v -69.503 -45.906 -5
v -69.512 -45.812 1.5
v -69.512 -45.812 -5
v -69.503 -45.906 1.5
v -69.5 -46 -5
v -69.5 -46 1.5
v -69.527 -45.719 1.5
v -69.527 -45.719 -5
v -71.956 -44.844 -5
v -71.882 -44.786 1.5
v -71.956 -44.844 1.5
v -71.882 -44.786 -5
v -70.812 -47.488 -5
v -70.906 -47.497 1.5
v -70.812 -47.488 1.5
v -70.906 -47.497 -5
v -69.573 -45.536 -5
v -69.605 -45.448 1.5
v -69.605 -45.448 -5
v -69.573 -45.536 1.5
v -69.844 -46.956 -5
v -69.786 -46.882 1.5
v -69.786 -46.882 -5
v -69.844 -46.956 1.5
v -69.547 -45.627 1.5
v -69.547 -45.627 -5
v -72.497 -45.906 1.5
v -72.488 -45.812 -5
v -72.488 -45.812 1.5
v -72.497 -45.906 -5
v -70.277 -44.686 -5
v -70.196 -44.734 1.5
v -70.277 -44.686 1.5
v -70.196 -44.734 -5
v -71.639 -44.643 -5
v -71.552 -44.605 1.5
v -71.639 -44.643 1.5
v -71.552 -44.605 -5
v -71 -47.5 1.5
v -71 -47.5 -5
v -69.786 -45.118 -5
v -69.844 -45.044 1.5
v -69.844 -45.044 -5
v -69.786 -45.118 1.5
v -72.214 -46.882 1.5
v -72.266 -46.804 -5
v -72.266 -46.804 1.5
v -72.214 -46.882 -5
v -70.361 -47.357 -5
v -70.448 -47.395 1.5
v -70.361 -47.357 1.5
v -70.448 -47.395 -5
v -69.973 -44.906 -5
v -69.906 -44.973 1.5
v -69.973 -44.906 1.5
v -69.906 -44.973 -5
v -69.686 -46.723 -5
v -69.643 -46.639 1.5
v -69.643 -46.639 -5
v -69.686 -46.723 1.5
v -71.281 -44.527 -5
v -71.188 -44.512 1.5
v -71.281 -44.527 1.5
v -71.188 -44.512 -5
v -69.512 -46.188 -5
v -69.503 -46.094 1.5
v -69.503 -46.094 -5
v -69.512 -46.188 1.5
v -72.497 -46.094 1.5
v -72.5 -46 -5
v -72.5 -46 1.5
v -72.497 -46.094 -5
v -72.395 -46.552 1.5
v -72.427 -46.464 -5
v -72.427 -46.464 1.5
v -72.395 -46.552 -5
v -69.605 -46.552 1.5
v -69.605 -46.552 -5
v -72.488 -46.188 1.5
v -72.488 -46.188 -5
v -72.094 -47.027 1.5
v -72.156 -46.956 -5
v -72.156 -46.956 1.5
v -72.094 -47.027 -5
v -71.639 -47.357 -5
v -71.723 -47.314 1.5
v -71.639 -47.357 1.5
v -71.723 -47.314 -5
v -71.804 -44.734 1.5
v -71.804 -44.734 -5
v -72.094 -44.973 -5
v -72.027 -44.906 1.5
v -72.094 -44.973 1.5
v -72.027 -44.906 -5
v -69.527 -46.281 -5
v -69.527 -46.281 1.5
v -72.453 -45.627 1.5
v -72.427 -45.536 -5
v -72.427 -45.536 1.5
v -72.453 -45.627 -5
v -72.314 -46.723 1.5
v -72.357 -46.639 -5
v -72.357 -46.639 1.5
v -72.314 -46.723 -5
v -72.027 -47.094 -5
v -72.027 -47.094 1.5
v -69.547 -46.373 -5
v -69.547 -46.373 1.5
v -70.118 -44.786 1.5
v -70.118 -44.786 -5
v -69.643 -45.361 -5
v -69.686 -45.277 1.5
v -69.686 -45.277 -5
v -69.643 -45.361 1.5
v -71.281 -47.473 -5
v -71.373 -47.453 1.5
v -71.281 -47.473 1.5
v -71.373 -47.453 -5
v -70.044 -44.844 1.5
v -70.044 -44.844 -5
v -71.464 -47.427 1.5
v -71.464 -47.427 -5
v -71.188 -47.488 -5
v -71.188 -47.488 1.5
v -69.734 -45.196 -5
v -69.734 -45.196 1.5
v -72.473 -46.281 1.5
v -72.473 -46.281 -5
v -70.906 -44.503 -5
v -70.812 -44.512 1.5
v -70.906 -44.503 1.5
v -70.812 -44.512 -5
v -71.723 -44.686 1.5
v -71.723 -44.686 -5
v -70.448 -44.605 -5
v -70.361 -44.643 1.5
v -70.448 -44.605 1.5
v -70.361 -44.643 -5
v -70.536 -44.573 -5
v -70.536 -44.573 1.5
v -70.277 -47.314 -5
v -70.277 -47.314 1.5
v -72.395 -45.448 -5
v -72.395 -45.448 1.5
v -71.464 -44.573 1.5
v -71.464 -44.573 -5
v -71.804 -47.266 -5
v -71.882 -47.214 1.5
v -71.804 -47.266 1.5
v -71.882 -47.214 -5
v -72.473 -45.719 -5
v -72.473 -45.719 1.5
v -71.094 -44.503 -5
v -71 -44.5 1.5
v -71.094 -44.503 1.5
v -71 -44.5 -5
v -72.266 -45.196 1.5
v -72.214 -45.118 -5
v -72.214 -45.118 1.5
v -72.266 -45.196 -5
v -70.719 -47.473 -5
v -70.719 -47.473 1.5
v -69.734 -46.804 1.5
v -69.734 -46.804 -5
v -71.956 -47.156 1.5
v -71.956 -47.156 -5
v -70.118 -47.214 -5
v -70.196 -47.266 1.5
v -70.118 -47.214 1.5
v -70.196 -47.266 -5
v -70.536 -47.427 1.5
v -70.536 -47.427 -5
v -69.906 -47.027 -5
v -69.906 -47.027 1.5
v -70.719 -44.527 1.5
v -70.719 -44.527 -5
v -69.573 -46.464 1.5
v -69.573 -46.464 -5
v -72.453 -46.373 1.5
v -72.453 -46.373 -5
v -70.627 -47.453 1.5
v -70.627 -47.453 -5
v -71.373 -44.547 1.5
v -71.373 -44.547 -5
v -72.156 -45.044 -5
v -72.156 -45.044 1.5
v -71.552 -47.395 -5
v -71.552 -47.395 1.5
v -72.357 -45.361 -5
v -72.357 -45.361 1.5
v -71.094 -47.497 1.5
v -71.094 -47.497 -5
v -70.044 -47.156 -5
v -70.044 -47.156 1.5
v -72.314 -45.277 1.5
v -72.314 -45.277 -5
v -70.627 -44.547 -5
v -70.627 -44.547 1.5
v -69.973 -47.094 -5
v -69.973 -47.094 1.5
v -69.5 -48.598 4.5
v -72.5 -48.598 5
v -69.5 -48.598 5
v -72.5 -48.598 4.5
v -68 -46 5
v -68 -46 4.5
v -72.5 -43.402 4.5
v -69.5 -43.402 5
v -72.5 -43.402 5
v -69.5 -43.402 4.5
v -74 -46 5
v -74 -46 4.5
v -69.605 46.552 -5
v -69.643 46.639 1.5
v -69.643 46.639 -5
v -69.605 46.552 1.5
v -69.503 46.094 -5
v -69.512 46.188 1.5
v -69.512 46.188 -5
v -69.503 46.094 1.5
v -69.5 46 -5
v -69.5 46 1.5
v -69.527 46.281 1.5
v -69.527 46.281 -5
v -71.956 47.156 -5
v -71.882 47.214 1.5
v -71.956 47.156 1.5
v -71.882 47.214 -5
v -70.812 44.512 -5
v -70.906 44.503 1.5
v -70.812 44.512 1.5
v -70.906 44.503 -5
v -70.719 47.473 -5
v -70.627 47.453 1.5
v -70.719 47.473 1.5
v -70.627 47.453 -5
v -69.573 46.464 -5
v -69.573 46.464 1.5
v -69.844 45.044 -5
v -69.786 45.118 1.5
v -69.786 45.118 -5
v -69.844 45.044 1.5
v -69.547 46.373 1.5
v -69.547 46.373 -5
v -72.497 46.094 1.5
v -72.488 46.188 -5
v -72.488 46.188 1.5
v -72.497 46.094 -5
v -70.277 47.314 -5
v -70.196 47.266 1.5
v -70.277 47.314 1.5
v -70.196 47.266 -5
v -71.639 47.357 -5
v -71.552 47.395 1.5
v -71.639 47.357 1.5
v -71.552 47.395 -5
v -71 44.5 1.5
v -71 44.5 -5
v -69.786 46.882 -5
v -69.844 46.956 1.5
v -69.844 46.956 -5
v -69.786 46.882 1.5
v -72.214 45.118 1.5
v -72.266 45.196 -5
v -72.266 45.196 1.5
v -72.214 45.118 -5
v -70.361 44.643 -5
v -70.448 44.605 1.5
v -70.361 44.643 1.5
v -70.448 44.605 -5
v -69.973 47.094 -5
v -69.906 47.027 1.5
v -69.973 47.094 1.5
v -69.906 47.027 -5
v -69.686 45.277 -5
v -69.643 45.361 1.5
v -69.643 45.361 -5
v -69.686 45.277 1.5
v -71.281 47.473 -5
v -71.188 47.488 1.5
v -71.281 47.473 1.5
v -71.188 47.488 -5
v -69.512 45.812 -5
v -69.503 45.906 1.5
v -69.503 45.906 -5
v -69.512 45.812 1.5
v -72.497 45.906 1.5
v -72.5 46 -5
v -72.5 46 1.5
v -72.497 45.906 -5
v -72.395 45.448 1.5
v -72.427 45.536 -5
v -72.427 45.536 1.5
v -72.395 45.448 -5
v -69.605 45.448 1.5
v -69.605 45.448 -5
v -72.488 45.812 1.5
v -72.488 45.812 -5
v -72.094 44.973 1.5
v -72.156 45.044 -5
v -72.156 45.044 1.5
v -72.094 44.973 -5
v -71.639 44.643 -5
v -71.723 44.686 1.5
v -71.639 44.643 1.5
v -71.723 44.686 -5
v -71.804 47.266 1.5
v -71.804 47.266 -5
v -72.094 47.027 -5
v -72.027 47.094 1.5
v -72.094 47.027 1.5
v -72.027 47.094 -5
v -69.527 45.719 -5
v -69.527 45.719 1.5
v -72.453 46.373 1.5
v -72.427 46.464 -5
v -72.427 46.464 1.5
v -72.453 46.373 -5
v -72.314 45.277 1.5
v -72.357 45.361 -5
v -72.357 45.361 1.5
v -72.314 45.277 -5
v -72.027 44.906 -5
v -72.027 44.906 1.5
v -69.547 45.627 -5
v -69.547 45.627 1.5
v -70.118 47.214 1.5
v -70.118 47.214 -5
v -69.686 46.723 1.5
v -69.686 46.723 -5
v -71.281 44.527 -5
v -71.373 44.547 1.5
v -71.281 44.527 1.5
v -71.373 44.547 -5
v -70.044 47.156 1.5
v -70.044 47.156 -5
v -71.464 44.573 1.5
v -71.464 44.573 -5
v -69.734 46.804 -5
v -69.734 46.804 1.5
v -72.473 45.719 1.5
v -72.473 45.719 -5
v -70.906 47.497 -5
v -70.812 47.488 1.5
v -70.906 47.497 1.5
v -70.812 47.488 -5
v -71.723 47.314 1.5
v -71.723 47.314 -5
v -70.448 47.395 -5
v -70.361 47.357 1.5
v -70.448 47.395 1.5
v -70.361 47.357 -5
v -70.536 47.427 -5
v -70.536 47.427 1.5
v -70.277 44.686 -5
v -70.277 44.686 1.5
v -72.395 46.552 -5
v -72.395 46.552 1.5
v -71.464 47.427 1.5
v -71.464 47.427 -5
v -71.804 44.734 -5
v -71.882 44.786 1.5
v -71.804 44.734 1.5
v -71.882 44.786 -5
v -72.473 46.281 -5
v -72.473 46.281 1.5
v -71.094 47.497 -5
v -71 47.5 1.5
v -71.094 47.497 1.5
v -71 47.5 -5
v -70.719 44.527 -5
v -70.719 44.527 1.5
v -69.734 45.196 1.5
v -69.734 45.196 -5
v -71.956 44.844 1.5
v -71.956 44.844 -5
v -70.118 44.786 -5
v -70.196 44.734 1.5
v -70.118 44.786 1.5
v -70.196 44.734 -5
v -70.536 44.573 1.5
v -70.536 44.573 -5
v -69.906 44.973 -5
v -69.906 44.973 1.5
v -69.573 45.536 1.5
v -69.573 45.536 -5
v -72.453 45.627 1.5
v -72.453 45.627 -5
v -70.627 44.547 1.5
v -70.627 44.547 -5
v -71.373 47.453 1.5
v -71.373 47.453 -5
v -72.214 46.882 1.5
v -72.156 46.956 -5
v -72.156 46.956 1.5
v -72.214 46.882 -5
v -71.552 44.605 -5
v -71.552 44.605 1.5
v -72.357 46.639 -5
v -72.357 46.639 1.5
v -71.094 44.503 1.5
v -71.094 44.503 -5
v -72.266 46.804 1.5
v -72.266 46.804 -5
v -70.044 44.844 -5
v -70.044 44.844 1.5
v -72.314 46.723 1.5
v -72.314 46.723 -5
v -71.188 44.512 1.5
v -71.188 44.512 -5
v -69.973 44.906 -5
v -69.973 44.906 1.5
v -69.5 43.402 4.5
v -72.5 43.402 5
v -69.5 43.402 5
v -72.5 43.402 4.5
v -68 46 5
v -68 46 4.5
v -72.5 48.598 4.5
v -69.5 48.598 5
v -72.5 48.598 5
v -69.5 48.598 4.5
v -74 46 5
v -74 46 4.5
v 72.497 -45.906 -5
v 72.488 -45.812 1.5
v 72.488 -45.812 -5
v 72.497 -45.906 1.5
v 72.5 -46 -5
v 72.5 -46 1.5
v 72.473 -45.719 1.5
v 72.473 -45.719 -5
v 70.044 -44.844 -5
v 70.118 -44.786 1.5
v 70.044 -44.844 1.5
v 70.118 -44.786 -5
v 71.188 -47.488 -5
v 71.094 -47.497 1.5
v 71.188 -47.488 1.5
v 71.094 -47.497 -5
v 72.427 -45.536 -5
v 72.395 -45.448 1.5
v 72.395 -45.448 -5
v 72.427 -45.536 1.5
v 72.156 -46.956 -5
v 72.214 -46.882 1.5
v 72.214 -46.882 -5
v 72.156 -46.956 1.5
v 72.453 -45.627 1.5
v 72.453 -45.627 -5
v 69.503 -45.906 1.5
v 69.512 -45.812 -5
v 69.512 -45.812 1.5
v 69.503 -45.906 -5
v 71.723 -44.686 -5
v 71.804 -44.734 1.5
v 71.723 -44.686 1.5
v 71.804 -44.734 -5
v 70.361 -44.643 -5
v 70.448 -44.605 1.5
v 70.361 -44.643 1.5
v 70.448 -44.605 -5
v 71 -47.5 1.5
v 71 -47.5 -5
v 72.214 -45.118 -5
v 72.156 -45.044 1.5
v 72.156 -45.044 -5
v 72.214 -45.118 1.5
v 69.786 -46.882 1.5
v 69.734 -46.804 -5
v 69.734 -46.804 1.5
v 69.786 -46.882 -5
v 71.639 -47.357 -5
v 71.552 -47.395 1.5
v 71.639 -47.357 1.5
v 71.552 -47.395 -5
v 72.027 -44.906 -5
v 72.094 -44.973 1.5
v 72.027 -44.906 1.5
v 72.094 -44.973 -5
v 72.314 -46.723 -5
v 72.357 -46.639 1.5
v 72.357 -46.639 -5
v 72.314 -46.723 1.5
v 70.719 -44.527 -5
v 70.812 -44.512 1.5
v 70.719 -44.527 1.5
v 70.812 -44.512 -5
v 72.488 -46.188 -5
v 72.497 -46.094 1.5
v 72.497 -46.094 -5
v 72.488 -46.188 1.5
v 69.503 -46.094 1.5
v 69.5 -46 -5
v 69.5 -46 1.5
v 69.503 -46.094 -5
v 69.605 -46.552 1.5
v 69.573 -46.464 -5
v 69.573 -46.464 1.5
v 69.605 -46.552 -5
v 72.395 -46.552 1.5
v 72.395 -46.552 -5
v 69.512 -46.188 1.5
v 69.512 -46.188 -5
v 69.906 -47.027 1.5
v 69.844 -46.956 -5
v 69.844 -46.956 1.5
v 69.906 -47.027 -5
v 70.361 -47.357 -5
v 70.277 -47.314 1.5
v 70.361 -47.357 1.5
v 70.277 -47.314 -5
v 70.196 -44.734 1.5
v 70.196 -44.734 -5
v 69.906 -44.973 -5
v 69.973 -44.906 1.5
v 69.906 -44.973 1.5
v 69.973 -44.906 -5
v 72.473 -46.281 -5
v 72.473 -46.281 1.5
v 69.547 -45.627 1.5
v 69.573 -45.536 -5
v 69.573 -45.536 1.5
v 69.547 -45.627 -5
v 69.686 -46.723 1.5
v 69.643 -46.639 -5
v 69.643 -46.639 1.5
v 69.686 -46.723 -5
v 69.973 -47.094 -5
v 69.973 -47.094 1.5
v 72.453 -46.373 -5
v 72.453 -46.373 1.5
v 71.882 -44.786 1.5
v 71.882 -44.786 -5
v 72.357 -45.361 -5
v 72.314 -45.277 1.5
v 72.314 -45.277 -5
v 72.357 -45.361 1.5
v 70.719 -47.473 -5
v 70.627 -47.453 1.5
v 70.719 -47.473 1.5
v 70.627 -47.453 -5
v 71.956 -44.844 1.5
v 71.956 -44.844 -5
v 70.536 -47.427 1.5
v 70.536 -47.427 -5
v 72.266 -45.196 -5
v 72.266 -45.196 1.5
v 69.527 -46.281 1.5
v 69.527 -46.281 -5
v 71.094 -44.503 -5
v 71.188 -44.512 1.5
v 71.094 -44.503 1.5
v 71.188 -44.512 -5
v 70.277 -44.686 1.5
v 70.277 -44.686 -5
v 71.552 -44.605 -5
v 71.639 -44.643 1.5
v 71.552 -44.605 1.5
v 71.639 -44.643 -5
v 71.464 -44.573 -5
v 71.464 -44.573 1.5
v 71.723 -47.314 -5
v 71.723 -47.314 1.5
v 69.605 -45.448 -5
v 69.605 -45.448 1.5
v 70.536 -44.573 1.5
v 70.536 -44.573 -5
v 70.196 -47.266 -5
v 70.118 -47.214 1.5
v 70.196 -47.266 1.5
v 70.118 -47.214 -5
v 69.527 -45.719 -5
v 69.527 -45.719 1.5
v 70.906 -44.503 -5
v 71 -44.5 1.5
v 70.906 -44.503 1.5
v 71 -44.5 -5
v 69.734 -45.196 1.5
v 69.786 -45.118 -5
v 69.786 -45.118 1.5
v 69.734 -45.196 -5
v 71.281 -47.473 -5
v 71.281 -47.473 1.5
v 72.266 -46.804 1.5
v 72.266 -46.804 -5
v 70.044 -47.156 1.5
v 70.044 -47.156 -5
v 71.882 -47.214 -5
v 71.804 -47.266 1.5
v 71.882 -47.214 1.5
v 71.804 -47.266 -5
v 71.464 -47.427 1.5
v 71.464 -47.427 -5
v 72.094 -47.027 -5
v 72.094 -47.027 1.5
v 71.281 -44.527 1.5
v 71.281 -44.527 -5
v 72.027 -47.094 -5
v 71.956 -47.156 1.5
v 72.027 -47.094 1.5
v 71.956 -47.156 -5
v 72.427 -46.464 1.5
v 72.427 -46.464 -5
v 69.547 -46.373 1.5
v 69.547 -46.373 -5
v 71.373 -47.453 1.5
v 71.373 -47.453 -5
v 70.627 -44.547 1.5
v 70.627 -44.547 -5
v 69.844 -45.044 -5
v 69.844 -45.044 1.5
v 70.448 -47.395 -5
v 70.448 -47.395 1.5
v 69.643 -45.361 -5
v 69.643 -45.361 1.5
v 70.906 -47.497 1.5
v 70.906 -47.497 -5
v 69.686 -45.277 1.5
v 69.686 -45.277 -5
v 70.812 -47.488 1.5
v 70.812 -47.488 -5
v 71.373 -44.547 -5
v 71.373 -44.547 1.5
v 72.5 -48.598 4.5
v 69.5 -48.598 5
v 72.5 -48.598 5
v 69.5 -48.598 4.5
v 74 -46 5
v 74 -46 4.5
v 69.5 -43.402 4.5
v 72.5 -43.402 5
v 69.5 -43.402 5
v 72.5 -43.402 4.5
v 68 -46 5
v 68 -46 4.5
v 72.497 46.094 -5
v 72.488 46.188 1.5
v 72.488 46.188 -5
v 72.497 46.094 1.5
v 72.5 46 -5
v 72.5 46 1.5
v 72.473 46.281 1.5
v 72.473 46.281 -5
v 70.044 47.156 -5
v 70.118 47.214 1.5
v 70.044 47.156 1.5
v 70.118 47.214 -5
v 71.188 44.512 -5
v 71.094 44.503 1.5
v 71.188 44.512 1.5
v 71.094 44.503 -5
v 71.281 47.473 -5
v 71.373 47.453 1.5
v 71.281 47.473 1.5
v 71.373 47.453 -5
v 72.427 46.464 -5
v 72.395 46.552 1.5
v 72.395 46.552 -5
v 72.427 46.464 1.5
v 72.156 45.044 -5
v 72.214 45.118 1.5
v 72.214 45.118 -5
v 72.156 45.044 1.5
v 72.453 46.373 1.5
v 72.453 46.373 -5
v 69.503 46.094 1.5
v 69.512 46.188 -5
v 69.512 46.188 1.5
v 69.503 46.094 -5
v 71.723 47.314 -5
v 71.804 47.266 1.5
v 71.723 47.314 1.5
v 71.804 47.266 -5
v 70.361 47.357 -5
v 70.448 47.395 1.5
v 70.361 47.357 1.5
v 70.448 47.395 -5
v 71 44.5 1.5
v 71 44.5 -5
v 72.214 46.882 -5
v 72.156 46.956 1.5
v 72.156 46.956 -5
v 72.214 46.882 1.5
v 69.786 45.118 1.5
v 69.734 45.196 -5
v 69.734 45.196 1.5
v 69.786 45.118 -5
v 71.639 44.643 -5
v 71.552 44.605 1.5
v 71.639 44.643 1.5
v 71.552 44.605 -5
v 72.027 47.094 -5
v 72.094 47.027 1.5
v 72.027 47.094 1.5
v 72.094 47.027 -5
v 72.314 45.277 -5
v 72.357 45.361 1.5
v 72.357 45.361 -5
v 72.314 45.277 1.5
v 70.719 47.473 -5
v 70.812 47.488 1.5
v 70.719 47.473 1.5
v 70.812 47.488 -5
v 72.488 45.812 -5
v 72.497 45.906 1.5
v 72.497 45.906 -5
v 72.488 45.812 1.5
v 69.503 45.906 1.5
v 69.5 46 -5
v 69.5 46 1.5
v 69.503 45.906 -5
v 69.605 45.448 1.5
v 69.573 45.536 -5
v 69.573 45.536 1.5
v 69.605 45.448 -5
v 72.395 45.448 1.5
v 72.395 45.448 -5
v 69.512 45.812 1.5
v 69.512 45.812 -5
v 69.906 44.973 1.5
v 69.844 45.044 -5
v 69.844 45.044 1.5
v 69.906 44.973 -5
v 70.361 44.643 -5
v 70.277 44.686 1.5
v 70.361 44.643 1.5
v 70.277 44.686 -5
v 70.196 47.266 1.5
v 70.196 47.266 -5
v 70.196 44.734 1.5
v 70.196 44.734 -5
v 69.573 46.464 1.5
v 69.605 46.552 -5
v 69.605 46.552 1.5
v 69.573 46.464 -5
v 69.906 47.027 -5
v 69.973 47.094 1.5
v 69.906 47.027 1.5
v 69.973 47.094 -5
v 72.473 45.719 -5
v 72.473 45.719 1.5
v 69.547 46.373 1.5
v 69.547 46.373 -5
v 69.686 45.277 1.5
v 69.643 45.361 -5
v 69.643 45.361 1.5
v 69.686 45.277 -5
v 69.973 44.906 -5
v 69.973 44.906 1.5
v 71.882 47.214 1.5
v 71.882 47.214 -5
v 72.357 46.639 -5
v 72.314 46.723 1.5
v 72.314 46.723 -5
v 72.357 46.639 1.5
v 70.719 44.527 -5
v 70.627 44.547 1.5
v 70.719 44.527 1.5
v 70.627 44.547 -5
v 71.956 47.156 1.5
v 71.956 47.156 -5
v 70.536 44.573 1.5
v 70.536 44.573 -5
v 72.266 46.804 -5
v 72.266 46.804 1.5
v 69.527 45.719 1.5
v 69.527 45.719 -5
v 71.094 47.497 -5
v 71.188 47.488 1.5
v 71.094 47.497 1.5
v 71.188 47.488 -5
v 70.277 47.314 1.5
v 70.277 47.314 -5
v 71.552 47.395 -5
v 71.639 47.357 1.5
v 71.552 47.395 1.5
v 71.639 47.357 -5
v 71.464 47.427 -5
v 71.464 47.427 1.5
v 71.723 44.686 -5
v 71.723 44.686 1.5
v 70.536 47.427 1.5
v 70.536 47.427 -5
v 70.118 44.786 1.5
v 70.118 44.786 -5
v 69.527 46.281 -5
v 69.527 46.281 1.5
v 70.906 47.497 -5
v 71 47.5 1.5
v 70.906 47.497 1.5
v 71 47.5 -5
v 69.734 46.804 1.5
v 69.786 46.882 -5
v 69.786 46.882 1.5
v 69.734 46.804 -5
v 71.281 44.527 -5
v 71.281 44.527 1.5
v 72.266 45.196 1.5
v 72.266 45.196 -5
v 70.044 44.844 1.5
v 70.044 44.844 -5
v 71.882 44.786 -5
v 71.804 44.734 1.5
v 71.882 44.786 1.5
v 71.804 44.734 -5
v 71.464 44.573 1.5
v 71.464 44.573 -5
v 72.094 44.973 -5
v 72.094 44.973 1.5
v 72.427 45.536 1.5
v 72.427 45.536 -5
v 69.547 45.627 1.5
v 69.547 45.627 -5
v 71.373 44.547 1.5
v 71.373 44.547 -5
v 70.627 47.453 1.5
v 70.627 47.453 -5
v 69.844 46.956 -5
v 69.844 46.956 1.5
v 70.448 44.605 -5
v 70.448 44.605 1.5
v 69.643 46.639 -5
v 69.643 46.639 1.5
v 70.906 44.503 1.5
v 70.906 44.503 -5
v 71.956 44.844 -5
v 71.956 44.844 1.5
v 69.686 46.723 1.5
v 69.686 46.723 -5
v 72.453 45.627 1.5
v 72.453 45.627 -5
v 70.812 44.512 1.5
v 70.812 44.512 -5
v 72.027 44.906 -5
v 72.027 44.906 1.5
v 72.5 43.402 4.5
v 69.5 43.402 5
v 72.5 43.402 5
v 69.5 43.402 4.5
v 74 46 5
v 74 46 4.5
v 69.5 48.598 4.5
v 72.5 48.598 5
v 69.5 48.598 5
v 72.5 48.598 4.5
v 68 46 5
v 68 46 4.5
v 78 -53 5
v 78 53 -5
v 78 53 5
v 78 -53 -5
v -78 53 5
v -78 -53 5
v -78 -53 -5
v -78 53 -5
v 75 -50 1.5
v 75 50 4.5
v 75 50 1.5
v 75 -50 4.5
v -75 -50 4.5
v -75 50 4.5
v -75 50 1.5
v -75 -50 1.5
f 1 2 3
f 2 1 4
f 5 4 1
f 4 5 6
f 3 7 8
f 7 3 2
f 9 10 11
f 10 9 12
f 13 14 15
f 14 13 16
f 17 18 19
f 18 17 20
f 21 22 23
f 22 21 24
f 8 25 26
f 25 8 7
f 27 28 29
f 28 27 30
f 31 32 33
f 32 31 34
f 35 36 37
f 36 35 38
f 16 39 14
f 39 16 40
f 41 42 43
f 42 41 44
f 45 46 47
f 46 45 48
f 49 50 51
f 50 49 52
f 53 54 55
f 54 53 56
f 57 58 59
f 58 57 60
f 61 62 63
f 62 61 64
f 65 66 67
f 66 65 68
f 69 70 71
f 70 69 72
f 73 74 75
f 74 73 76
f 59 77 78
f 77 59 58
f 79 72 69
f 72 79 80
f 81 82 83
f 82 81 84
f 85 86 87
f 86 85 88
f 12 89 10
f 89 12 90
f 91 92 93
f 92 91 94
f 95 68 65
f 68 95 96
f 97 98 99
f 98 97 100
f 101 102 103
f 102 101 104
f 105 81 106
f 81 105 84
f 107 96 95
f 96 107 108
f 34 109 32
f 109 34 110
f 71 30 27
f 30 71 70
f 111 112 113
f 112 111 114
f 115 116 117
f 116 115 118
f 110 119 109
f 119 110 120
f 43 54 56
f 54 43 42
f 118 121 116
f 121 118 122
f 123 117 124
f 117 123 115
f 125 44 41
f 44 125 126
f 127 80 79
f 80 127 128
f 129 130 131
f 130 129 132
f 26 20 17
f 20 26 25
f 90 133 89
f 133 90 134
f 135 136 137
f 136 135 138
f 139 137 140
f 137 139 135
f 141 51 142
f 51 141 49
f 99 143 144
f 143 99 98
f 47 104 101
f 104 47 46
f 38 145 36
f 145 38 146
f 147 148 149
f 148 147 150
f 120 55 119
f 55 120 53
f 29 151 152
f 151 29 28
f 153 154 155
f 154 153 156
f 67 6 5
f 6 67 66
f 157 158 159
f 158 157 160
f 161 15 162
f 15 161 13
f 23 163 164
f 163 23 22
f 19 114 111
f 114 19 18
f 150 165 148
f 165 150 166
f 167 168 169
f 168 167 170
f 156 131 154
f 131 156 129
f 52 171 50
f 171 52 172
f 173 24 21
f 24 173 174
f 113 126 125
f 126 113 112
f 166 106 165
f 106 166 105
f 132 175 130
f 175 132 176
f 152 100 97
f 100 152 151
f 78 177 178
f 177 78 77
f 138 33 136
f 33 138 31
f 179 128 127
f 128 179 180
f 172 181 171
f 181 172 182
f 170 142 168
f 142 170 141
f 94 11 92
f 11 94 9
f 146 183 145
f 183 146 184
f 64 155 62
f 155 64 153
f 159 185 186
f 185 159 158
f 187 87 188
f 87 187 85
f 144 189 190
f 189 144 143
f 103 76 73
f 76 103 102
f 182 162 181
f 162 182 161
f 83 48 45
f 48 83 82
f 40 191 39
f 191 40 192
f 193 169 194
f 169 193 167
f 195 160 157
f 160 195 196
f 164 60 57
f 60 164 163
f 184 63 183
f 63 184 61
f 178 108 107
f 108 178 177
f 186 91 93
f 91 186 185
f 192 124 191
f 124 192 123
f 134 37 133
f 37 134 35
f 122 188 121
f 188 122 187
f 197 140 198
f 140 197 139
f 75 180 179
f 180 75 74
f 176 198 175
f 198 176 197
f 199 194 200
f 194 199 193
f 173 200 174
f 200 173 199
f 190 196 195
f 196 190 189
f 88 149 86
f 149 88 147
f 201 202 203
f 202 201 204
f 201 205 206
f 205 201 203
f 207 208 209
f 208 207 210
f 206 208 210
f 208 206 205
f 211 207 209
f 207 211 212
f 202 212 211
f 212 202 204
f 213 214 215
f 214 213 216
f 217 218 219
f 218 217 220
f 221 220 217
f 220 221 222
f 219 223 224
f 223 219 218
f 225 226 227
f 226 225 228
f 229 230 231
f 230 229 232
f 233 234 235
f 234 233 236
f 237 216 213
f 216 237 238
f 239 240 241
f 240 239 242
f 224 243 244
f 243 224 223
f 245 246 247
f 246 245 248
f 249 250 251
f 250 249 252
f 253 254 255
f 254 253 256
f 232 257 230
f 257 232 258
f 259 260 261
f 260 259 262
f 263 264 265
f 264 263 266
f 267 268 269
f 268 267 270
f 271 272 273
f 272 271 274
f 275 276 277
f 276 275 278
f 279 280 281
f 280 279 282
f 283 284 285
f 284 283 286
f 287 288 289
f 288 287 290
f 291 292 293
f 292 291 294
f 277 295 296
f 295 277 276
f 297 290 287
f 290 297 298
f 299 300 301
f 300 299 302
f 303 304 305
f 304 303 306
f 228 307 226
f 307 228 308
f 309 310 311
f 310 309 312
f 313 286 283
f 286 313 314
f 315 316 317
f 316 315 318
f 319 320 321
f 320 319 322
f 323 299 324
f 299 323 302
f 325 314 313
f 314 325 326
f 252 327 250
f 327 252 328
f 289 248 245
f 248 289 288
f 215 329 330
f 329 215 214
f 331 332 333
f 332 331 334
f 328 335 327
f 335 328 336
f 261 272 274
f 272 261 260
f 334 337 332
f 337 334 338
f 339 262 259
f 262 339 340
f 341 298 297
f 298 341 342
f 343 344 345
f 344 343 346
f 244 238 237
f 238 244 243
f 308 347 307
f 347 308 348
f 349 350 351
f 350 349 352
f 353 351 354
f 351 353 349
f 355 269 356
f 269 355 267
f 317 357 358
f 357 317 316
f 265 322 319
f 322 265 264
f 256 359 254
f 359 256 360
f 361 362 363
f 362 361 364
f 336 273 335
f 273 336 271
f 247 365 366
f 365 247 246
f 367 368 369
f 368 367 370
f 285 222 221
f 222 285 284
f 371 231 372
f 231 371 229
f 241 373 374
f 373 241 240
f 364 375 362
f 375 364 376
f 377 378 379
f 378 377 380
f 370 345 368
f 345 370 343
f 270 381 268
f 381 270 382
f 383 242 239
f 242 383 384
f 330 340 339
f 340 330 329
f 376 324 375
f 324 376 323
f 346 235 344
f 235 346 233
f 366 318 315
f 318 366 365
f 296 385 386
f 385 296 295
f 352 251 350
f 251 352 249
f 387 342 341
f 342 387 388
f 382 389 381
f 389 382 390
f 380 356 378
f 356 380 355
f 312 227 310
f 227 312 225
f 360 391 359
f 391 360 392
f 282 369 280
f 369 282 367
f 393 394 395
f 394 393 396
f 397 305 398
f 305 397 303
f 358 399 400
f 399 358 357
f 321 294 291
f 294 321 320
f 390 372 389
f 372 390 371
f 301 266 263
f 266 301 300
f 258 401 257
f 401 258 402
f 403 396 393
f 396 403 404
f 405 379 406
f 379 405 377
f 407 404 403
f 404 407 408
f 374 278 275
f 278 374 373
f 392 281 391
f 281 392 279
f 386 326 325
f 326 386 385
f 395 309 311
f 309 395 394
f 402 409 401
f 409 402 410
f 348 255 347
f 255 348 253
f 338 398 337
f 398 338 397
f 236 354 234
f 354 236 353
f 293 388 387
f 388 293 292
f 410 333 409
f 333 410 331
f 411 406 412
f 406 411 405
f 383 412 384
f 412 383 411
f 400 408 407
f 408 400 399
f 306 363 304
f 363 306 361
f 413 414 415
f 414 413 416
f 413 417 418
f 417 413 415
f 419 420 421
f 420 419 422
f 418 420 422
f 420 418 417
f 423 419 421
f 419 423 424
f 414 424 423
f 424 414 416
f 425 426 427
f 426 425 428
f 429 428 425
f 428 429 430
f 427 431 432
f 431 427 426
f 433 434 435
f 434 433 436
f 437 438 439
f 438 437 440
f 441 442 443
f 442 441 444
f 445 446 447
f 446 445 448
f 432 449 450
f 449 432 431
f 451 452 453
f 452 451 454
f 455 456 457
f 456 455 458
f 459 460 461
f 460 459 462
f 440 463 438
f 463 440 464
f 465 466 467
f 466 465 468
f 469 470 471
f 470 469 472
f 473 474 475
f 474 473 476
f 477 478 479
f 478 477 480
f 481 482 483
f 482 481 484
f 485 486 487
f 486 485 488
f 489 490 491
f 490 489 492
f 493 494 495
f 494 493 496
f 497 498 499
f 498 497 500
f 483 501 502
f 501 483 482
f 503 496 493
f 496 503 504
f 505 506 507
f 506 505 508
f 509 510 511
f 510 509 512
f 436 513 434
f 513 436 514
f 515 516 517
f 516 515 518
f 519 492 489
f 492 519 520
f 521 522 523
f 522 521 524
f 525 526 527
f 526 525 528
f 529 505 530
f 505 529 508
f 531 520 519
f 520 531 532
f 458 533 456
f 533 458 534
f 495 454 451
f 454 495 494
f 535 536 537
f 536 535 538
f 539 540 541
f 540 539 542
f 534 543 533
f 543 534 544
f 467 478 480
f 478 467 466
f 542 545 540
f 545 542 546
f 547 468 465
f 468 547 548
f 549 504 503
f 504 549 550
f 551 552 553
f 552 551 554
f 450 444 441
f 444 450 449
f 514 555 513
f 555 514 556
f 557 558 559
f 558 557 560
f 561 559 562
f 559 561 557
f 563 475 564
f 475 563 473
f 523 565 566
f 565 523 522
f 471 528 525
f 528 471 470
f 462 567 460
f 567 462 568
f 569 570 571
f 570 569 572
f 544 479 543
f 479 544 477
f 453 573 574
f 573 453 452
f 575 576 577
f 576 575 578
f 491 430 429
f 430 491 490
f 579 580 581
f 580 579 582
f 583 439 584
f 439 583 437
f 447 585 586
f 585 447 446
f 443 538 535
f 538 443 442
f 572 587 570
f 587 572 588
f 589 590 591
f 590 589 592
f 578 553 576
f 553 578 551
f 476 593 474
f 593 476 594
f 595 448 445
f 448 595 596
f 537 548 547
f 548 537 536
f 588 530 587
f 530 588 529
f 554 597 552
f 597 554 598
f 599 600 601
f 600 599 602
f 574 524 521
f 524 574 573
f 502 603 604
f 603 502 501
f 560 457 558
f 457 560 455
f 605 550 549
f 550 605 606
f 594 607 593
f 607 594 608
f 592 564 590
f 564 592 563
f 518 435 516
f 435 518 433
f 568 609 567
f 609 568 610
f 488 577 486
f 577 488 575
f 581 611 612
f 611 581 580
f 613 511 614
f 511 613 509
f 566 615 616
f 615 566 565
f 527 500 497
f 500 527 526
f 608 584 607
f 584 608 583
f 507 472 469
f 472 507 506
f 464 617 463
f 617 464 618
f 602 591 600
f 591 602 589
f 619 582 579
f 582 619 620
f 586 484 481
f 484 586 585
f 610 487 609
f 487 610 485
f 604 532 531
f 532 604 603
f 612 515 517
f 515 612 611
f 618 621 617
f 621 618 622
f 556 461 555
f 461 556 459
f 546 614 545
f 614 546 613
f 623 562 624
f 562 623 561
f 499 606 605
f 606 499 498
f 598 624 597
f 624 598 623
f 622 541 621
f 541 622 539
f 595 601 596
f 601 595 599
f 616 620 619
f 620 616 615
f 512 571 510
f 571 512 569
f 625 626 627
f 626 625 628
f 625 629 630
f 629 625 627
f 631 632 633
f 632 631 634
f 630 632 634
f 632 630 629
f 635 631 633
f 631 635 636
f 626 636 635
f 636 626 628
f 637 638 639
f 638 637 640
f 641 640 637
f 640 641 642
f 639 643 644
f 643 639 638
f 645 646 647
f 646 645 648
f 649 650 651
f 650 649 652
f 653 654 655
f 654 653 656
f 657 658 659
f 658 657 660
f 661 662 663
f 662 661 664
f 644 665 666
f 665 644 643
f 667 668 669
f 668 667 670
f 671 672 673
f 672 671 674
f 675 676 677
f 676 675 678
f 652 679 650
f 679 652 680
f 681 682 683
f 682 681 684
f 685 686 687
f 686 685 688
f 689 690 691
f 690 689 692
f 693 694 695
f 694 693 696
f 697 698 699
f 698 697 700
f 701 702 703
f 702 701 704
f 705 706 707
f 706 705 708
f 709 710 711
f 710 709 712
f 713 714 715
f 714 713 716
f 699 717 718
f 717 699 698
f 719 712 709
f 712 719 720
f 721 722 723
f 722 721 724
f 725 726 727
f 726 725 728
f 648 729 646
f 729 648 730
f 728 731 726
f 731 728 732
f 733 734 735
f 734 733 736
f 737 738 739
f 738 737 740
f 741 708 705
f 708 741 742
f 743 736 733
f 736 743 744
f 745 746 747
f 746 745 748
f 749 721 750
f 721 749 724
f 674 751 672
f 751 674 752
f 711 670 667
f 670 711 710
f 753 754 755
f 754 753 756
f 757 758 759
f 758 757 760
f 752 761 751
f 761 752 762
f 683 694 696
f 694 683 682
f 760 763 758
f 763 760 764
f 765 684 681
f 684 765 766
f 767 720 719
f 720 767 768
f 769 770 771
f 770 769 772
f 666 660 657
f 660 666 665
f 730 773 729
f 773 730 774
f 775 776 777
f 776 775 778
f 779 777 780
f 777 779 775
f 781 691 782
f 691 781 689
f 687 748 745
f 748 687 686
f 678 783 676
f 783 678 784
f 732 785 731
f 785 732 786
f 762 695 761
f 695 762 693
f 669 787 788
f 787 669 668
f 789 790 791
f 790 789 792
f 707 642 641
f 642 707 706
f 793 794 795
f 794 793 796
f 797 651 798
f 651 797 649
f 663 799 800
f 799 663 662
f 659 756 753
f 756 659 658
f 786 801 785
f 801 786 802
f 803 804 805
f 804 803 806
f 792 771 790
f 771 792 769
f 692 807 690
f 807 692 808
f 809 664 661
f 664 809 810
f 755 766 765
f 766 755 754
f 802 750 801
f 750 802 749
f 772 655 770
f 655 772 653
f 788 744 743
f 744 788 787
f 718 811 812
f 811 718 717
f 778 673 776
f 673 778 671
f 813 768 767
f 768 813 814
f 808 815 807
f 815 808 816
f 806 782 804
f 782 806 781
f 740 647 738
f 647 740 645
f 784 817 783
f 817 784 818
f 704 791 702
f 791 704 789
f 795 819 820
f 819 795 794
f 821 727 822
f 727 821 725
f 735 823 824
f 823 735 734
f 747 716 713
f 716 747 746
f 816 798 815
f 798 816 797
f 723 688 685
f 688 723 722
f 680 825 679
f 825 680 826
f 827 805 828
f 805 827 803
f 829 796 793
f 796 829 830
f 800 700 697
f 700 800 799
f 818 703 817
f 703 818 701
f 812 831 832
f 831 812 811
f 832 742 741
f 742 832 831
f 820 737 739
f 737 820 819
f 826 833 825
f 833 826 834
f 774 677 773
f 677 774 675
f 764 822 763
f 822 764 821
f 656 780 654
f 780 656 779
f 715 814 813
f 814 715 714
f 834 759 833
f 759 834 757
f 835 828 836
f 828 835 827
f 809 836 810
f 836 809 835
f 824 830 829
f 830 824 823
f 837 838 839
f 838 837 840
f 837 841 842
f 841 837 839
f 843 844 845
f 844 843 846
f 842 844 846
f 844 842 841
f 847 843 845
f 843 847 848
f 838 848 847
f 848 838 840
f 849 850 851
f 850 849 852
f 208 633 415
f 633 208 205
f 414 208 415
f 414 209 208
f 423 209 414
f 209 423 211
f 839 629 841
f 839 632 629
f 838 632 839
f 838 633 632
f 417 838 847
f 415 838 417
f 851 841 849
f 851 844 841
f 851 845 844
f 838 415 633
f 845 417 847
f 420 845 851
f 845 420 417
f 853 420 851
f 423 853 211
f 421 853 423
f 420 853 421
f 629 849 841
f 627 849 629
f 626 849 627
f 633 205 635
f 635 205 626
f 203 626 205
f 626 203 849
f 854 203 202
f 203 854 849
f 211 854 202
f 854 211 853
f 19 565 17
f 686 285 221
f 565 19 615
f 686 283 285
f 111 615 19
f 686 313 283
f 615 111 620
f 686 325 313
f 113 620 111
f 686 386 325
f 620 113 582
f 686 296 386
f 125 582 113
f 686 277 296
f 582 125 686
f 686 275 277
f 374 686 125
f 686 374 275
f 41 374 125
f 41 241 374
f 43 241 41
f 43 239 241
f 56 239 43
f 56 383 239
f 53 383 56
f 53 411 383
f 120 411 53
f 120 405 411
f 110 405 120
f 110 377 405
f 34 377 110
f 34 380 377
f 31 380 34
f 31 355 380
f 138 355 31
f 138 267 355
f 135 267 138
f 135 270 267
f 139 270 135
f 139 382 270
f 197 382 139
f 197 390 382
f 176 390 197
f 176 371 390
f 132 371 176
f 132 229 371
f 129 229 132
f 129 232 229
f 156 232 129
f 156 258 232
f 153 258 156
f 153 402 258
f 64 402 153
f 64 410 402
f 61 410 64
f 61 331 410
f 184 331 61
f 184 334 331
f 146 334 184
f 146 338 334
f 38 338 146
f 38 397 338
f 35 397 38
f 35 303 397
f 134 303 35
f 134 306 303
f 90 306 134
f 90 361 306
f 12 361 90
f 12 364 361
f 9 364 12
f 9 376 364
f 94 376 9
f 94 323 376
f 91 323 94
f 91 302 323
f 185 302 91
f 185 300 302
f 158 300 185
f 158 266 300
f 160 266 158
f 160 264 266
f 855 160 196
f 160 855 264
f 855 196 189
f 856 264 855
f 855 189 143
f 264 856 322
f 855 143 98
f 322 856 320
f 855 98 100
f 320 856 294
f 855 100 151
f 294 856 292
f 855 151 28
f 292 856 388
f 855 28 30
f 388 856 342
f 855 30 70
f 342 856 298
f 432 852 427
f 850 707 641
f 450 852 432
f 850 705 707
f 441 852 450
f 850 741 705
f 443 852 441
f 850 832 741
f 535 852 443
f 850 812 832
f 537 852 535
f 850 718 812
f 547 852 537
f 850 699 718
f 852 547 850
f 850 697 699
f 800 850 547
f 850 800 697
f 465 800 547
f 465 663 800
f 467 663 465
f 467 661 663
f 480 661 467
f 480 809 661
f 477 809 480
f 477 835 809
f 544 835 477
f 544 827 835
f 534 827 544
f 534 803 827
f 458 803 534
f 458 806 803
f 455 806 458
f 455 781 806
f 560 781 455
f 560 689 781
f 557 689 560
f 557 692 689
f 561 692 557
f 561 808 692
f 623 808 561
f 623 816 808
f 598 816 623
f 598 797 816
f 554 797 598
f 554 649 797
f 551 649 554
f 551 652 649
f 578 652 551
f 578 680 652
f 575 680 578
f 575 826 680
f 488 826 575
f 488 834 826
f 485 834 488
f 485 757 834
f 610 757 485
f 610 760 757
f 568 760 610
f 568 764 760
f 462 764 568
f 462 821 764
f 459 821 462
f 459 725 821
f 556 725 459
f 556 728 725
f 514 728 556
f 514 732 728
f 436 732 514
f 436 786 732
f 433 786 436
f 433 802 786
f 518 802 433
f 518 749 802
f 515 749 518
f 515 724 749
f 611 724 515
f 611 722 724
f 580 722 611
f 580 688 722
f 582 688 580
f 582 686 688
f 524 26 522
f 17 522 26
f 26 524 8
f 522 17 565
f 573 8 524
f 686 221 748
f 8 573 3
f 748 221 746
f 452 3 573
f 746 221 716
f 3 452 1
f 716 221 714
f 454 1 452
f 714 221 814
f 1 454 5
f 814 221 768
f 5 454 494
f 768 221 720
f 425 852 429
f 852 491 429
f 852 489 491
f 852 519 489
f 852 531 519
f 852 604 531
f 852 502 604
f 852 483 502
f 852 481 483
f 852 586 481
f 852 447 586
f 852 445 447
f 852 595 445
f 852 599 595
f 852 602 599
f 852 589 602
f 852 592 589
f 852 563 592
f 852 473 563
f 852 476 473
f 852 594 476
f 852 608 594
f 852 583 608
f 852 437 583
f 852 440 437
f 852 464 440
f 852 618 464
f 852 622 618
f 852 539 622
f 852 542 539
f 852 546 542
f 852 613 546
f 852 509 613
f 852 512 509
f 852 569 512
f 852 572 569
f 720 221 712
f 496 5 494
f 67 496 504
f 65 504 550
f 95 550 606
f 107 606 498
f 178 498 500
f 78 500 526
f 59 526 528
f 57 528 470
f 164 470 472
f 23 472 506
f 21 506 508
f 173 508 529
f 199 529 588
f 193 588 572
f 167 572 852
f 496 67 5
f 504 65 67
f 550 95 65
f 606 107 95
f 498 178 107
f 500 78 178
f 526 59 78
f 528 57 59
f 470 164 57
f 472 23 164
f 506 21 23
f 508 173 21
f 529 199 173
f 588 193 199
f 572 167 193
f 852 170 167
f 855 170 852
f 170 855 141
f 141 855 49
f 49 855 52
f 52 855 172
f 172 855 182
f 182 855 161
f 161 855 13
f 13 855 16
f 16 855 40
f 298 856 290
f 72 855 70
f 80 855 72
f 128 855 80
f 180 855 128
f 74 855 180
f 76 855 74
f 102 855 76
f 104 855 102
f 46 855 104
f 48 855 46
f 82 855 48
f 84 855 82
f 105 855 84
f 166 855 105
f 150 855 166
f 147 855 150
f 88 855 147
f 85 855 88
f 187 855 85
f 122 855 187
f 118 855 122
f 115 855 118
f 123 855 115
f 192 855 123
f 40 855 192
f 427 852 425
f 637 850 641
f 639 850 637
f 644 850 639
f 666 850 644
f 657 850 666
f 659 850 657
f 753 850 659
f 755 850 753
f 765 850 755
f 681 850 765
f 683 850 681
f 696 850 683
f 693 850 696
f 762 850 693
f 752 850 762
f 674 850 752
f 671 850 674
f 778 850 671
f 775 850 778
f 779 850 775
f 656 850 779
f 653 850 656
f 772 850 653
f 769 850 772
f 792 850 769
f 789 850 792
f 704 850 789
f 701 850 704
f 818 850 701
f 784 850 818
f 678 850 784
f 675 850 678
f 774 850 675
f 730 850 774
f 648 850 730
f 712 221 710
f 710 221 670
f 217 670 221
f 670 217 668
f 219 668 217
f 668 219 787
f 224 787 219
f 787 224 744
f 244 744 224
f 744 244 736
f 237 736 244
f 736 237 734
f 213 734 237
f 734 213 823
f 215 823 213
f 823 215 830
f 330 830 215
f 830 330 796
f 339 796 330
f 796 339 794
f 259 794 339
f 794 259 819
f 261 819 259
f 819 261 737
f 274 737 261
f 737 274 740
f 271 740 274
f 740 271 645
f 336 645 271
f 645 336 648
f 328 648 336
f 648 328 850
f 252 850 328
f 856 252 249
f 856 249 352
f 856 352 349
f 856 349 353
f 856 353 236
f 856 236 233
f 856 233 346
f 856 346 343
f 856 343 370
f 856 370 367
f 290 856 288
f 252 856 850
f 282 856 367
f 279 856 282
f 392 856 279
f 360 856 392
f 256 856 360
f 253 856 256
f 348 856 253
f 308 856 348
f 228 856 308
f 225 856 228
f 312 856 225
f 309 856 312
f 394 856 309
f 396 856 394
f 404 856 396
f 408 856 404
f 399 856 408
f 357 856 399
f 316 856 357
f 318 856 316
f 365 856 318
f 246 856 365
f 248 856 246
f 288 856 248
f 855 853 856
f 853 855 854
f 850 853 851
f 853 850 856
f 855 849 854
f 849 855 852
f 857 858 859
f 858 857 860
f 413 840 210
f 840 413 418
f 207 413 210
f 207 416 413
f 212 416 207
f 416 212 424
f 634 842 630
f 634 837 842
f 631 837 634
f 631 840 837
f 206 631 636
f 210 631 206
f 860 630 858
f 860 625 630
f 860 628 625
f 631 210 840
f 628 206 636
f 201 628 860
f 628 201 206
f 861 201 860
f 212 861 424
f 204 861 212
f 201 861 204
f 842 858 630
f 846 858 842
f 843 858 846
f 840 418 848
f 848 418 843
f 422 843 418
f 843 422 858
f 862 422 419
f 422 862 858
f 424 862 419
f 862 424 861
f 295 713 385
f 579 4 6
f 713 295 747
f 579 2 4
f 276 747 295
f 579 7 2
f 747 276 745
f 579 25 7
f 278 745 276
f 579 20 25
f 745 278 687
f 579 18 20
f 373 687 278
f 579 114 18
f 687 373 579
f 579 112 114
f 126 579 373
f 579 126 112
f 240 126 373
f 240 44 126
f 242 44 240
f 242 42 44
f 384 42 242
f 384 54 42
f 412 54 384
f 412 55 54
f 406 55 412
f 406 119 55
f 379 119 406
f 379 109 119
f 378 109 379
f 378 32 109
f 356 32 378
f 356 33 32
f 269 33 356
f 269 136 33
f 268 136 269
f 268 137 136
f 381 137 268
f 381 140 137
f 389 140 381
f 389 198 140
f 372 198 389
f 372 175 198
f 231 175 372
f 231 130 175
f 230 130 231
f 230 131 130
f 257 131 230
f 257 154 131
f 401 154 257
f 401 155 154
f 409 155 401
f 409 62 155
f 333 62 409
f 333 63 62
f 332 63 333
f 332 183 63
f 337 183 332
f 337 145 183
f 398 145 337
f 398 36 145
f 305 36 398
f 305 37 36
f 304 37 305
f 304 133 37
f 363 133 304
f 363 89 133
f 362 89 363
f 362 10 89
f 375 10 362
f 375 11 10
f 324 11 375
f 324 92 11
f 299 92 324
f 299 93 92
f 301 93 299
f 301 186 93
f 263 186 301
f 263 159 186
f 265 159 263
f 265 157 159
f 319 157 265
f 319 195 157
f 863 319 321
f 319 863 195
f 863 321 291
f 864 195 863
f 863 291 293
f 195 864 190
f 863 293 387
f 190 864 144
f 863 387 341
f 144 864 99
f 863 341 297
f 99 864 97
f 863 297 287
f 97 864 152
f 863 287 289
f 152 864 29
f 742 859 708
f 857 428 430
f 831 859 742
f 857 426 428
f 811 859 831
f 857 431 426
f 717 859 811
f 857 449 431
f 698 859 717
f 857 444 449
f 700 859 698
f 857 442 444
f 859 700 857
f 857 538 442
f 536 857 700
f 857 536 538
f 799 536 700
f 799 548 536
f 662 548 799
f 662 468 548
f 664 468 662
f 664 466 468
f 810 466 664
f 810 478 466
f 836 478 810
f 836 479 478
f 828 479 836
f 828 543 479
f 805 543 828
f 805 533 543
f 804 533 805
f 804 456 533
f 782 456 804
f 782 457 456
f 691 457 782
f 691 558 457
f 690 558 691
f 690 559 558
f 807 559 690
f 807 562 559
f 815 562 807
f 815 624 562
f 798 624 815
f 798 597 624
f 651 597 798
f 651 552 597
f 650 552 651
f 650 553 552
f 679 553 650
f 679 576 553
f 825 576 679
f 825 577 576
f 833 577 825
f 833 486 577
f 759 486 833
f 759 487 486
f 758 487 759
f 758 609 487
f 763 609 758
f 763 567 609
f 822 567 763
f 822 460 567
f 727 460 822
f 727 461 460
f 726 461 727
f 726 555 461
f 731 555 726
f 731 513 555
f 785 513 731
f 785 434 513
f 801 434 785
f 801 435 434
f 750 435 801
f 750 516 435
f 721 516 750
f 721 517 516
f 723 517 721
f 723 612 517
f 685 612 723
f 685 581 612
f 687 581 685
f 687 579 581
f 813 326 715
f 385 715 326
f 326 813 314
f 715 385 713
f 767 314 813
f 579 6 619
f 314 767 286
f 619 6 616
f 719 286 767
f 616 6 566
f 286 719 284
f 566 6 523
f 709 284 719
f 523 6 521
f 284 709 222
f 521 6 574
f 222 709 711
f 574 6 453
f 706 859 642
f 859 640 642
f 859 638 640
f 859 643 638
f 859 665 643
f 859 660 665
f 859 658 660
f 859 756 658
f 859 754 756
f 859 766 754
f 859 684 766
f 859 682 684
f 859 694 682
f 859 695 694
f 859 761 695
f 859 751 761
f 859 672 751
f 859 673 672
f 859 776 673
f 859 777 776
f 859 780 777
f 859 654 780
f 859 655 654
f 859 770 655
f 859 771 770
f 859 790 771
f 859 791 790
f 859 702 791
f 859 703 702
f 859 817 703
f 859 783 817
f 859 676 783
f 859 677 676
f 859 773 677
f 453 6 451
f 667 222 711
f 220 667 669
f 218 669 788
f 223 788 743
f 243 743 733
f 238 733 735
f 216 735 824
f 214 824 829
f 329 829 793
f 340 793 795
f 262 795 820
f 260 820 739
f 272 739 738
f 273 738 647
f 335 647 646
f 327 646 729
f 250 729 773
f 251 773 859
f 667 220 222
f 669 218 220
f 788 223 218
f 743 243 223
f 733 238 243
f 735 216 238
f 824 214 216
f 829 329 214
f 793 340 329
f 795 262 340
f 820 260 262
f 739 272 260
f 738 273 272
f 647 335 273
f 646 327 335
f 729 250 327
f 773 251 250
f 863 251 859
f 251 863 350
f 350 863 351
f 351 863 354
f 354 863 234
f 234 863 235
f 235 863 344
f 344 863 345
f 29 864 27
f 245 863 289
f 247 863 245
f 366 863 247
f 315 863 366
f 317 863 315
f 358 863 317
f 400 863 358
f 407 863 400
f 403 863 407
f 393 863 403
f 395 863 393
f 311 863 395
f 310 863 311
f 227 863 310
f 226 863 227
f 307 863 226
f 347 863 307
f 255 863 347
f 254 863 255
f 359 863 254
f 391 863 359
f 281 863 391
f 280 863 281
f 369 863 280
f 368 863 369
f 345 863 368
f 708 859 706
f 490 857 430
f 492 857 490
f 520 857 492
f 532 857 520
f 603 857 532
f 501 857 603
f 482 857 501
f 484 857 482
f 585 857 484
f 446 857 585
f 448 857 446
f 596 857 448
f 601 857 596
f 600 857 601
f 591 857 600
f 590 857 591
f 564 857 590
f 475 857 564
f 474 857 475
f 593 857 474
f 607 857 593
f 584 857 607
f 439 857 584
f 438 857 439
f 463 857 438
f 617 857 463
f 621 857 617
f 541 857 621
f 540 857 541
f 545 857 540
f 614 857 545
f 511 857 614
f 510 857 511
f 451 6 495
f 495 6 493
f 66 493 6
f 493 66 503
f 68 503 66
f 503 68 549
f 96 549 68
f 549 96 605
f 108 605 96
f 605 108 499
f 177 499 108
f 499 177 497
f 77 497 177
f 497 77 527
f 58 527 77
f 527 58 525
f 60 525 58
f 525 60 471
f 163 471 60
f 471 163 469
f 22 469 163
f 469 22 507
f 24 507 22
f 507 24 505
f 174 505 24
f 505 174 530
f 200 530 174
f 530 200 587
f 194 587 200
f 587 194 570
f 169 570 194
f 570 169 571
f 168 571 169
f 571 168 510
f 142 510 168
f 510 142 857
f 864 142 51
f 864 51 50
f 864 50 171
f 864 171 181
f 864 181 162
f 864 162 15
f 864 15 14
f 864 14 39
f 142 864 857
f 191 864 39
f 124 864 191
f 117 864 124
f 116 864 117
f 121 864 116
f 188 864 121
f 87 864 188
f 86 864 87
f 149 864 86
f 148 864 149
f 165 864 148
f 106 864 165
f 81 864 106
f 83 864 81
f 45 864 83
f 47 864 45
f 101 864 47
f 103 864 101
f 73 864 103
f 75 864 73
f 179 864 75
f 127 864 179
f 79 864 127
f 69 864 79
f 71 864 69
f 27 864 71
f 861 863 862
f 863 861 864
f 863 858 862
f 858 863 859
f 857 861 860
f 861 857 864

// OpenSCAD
// Control Box Lid (Refactored)
// Engineer: Gemini
// Date: 2024-11-15
//
// ========== REVISION HIGHLIGHTS ==========
// - REFACTORED: Redesigned to fit the new screw-together enclosure.
// - NEW: Includes a lip for a secure, snug fit.
// - NEW: Countersunk screw holes for a flush finish.
// - NEW: Parametric design linked to enclosure parameters.
// =========================================

// ========== CORE PARAMETERS ==========
$fn = 100;

// [Enclosure Dimensions]
box_interior_length = 150;
box_interior_width = 100;
wall_thickness = 3;
lid_height = 10;
lip_depth = 2;

// [Fasteners]
lid_screw_diameter = 3; // M3
lid_screw_post_diameter = 8;
countersink_diameter = 6;

// ========== MODULES ==========

module enclosure_lid() {
    box_outer_length = box_interior_length + 2 * wall_thickness;
    box_outer_width = box_interior_width + 2 * wall_thickness;

    difference() {
        // Main lid body
        cube([box_outer_length, box_outer_width, lid_height], center=true);

        // Inner lip for snug fit
        translate([0,0,lid_height/2 - lip_depth]) {
            cube([box_interior_length, box_interior_width, lip_depth+1], center=true);
        }

        // Screw holes with countersink
        for (x_mult = [-1, 1]) {
            for (y_mult = [-1, 1]) {
                translate([
                    x_mult * (box_interior_length/2 - lid_screw_post_diameter/2),
                    y_mult * (box_interior_width/2 - lid_screw_post_diameter/2),
                    -lid_height/2 - 1
                ]) {
                    // Screw hole
                    cylinder(d=lid_screw_diameter, h=lid_height+2);
                    // Countersink
                    translate([0,0,lid_height - 2]) {
                        cylinder(d=countersink_diameter, h=lid_height, $fn=6); // Hexagonal for bridging
                    }
                }
            }
        }
    }
}

// ========== ASSEMBLY CALL ==========
enclosure_lid();
